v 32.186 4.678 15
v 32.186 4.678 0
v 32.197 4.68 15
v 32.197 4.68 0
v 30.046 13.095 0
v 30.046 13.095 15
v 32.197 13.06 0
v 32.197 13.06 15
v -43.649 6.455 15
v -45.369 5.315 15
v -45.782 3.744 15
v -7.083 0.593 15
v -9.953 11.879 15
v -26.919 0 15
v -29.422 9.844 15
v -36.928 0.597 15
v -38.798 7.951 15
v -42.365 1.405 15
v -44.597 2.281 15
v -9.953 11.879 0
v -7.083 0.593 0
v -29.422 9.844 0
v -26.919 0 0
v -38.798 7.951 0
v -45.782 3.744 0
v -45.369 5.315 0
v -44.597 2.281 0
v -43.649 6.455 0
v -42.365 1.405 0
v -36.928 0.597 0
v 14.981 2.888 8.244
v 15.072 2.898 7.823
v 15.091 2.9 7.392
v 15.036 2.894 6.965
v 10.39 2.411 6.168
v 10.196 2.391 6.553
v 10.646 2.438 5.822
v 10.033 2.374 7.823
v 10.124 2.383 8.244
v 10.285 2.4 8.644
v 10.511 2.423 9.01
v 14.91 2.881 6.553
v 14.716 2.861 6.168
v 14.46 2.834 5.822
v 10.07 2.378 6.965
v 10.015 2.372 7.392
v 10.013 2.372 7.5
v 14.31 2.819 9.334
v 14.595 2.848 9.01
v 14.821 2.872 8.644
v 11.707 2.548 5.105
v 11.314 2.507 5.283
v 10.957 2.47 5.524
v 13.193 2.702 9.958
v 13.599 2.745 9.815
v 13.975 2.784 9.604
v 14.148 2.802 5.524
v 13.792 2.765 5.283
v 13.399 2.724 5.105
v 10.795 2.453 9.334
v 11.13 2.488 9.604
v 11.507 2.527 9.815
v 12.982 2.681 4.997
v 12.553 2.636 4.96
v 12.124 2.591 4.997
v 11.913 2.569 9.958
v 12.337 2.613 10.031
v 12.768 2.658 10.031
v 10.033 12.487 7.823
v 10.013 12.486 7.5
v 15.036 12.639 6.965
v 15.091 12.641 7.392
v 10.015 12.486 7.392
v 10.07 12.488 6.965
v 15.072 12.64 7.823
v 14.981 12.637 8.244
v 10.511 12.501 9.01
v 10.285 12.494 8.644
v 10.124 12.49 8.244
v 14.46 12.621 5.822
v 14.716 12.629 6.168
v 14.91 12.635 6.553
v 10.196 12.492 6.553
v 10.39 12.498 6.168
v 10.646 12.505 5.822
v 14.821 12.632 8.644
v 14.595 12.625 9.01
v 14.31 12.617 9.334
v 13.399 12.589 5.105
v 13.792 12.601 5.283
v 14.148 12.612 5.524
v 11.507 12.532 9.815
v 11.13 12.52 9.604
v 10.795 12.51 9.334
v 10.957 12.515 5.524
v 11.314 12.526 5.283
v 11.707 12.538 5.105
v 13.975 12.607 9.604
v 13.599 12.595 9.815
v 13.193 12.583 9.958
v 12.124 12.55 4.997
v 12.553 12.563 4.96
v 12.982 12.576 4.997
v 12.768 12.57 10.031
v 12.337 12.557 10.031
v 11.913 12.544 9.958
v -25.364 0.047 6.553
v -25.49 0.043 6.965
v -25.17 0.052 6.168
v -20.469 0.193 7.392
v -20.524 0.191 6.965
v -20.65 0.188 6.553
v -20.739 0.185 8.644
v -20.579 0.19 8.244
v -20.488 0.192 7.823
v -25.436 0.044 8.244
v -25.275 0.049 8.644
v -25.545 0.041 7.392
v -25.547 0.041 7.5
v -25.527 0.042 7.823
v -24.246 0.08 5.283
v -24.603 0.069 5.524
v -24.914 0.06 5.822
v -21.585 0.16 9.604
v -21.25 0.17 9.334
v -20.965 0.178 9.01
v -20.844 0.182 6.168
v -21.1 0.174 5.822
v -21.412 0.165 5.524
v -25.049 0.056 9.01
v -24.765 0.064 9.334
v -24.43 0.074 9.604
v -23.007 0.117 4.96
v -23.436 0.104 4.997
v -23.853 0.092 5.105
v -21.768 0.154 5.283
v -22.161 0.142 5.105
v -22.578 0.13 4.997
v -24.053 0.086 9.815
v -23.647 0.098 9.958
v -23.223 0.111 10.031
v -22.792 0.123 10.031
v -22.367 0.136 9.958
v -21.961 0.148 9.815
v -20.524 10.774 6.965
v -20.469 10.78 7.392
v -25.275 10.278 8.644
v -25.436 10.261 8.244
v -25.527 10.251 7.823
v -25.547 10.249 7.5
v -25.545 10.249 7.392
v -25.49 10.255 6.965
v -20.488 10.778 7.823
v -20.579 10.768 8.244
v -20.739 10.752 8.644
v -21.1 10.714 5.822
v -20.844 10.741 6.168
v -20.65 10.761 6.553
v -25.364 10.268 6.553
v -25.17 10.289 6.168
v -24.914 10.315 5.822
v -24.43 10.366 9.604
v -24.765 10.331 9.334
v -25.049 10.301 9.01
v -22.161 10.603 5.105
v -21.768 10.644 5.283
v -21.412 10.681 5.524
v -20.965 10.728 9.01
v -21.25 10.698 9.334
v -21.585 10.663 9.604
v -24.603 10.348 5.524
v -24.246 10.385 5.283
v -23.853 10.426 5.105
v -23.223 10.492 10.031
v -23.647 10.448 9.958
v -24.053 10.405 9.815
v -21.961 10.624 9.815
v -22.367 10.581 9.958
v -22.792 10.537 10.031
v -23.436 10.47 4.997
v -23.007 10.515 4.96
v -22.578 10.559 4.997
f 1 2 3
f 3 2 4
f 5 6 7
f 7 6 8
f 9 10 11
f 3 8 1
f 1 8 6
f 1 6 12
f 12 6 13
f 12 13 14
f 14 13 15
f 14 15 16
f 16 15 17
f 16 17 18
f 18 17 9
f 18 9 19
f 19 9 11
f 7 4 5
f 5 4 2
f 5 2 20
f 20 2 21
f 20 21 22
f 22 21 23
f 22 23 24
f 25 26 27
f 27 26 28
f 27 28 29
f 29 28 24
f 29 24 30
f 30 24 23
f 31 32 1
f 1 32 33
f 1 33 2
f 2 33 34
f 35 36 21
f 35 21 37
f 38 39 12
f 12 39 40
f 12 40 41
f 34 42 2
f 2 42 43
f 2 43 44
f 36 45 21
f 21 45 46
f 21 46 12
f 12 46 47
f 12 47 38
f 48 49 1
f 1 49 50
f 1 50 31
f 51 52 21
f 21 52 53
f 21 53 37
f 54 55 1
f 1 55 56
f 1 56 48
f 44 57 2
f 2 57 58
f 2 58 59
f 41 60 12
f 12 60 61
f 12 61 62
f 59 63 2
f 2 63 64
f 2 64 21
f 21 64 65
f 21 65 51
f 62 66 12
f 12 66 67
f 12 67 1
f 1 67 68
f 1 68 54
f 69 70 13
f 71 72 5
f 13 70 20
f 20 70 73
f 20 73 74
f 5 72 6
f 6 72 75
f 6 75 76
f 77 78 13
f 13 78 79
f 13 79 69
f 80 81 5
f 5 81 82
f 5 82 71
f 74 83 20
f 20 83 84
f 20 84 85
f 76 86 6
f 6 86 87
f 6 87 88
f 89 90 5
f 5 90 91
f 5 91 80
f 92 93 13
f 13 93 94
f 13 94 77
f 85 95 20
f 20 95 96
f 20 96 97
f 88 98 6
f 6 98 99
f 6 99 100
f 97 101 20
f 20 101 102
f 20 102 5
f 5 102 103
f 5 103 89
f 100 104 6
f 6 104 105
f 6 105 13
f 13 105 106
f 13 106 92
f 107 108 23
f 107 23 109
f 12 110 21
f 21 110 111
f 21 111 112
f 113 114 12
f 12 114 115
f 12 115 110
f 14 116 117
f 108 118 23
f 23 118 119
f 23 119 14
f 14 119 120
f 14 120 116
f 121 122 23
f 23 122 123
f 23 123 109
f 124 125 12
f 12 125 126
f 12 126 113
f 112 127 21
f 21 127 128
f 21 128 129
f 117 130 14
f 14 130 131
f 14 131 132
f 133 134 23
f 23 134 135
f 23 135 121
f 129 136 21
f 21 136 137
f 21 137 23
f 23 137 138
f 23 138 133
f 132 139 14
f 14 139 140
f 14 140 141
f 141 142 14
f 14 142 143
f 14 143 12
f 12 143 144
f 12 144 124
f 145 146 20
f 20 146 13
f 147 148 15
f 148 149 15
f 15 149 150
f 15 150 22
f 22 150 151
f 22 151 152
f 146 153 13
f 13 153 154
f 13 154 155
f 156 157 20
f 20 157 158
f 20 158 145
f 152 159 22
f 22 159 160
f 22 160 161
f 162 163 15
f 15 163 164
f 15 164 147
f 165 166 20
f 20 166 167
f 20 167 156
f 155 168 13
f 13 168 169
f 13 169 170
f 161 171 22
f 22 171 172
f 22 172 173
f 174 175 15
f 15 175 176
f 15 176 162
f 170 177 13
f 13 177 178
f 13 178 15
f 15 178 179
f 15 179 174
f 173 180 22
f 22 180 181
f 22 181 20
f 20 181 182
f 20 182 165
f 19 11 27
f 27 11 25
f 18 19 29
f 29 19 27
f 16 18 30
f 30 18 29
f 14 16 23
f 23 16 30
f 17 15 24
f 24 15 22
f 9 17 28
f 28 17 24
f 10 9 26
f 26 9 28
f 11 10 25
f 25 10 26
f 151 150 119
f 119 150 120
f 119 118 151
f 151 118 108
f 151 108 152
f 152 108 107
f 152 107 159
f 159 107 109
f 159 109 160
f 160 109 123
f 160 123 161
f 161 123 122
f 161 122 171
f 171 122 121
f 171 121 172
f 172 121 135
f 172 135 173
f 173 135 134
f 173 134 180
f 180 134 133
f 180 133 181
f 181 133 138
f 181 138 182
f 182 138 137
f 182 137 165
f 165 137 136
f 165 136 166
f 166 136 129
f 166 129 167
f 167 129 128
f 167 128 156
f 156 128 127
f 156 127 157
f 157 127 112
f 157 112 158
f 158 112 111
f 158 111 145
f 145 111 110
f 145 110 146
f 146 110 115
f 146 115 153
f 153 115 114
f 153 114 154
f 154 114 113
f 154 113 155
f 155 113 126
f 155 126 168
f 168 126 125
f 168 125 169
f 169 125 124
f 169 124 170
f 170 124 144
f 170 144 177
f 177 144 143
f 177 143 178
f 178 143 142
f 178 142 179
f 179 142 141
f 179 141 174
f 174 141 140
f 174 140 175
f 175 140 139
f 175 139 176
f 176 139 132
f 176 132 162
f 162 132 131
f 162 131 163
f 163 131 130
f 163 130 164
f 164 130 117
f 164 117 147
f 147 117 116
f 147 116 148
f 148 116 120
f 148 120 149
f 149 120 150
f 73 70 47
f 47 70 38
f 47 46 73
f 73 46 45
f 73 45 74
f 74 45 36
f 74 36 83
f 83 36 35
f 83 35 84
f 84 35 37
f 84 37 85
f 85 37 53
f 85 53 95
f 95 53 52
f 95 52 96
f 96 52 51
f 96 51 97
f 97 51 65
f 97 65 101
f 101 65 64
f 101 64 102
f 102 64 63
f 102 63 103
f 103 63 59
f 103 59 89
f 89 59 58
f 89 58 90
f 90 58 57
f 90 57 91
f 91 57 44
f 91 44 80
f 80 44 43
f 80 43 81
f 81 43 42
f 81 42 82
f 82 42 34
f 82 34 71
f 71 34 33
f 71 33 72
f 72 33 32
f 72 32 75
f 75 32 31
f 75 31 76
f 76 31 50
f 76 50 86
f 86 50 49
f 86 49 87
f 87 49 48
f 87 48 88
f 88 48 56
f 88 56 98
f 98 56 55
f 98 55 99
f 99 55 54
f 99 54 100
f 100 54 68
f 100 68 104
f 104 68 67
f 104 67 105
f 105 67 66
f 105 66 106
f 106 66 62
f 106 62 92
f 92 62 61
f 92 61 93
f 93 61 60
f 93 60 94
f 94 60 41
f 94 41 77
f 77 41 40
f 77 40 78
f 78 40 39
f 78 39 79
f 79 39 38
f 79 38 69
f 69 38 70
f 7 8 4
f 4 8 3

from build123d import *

# Parameters (mm, degrees)
BOSS_EXTRUDE1_DEPTH = 15
SKETCH4_R           = 2.54
CUT_EXTRUDE1_DEPTH  = 12.7
SKETCH5_R           = 2.54
CUT_EXTRUDE2_DEPTH  = 15.24
SKETCH6_W           = 50.620820664
SKETCH6_H           = 16.798394225
CUT_EXTRUDE3_DEPTH  = 15.24


with BuildPart() as part:
    # Sketch1 → Boss-Extrude1 (new body)
    with BuildSketch(Plane.XY):
        Polygon((-45.368681743, 5.31474447), (-45.781639963, 3.744360676), (-44.597190062, 2.280798517), (-42.364651707, 1.40510115), (-36.927606101, 0.59697268), (-26.918722281, 0), (-7.083221645, 0.593485987), (32.186093563, 4.677985502), (81.310277275, 12.243232279), (30.045684711, 13.095295678), (-9.952974473, 11.878999191), (-29.421950259, 9.844122216), (-38.797603286, 7.950869725), (-43.648710425, 6.454753464), align=None)
    extrude(amount=BOSS_EXTRUDE1_DEPTH)

    # Sketch4 → Cut-Extrude1 (cut)
    with BuildSketch(Plane(origin=(0, 0, 0), x_dir=(1, 0, 0), z_dir=(0, 1, 0))):
        with Locations(Location((-23.007190062, -7.5, 0), (0, 0, 180))):
            Circle(SKETCH4_R)
    extrude(amount=CUT_EXTRUDE1_DEPTH, mode=Mode.SUBTRACT)

    # Sketch5 → Cut-Extrude2 (cut)
    with BuildSketch(Plane(origin=(0, 0, 0), x_dir=(1, 0, 0), z_dir=(0, 1, 0))):
        with Locations(Location((12.552809938, -7.5, 0), (0, 0, 180))):
            Circle(SKETCH5_R)
    extrude(amount=CUT_EXTRUDE2_DEPTH, mode=Mode.SUBTRACT)

    # Sketch6 → Cut-Extrude3 (cut)
    with BuildSketch(Plane(origin=(0, 0, 0), x_dir=(1, 0, 0), z_dir=(0, 1, 0))):
        with Locations((57.506978049, -7.112855452)):
            Rectangle(SKETCH6_W, SKETCH6_H)
    extrude(amount=CUT_EXTRUDE3_DEPTH, mode=Mode.SUBTRACT)


solid = part.part
